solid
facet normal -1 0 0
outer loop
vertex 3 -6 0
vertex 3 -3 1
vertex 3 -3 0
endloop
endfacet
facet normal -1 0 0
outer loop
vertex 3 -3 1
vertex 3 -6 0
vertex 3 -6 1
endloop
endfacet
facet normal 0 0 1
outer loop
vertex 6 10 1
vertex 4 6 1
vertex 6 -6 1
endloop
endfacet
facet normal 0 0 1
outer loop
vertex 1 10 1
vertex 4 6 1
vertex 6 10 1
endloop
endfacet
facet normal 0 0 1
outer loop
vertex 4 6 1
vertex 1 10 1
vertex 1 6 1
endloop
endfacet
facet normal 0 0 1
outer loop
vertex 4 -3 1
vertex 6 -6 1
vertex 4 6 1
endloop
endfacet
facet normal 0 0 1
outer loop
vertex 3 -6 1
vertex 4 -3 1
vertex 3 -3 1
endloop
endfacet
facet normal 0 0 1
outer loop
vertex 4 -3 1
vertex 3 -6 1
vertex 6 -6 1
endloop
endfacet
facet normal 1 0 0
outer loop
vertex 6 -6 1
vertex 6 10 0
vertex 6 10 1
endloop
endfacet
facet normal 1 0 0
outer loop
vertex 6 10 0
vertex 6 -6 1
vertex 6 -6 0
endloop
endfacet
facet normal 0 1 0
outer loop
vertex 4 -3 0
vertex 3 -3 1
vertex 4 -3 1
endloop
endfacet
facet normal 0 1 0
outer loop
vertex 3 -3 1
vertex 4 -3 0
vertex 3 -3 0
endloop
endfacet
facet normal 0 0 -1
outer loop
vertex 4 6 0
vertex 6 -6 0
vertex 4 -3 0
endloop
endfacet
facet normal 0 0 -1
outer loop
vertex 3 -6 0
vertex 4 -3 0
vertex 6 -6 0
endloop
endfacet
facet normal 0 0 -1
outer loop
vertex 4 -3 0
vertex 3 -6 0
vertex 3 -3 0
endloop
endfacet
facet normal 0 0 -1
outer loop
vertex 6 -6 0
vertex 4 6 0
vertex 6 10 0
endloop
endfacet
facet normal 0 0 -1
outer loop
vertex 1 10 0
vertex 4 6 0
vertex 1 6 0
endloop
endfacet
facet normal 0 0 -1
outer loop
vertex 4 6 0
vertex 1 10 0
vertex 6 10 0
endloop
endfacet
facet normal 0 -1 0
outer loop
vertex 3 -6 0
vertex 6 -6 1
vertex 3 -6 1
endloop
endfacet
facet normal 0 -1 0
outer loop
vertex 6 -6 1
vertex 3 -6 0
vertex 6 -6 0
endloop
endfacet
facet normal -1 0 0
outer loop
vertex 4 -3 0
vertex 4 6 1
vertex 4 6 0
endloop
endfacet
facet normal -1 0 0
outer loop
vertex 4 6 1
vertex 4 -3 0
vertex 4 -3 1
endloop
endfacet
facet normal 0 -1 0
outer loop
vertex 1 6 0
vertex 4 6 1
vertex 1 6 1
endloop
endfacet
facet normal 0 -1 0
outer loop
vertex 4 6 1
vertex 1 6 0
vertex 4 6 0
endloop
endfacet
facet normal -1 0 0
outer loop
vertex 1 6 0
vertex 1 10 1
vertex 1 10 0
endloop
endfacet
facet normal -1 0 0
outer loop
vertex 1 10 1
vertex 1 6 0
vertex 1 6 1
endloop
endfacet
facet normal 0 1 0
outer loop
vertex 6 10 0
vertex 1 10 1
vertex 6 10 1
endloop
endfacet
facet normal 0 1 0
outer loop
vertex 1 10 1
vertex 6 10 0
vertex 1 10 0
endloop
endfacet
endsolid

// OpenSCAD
translate([3,-6,0])
{
cube([3,3,1]);
}
translate([4,-3,0])
{
    cube([2,9,1]);
}

translate([1,6,0])
{
    cube([5,4,1]);
}
